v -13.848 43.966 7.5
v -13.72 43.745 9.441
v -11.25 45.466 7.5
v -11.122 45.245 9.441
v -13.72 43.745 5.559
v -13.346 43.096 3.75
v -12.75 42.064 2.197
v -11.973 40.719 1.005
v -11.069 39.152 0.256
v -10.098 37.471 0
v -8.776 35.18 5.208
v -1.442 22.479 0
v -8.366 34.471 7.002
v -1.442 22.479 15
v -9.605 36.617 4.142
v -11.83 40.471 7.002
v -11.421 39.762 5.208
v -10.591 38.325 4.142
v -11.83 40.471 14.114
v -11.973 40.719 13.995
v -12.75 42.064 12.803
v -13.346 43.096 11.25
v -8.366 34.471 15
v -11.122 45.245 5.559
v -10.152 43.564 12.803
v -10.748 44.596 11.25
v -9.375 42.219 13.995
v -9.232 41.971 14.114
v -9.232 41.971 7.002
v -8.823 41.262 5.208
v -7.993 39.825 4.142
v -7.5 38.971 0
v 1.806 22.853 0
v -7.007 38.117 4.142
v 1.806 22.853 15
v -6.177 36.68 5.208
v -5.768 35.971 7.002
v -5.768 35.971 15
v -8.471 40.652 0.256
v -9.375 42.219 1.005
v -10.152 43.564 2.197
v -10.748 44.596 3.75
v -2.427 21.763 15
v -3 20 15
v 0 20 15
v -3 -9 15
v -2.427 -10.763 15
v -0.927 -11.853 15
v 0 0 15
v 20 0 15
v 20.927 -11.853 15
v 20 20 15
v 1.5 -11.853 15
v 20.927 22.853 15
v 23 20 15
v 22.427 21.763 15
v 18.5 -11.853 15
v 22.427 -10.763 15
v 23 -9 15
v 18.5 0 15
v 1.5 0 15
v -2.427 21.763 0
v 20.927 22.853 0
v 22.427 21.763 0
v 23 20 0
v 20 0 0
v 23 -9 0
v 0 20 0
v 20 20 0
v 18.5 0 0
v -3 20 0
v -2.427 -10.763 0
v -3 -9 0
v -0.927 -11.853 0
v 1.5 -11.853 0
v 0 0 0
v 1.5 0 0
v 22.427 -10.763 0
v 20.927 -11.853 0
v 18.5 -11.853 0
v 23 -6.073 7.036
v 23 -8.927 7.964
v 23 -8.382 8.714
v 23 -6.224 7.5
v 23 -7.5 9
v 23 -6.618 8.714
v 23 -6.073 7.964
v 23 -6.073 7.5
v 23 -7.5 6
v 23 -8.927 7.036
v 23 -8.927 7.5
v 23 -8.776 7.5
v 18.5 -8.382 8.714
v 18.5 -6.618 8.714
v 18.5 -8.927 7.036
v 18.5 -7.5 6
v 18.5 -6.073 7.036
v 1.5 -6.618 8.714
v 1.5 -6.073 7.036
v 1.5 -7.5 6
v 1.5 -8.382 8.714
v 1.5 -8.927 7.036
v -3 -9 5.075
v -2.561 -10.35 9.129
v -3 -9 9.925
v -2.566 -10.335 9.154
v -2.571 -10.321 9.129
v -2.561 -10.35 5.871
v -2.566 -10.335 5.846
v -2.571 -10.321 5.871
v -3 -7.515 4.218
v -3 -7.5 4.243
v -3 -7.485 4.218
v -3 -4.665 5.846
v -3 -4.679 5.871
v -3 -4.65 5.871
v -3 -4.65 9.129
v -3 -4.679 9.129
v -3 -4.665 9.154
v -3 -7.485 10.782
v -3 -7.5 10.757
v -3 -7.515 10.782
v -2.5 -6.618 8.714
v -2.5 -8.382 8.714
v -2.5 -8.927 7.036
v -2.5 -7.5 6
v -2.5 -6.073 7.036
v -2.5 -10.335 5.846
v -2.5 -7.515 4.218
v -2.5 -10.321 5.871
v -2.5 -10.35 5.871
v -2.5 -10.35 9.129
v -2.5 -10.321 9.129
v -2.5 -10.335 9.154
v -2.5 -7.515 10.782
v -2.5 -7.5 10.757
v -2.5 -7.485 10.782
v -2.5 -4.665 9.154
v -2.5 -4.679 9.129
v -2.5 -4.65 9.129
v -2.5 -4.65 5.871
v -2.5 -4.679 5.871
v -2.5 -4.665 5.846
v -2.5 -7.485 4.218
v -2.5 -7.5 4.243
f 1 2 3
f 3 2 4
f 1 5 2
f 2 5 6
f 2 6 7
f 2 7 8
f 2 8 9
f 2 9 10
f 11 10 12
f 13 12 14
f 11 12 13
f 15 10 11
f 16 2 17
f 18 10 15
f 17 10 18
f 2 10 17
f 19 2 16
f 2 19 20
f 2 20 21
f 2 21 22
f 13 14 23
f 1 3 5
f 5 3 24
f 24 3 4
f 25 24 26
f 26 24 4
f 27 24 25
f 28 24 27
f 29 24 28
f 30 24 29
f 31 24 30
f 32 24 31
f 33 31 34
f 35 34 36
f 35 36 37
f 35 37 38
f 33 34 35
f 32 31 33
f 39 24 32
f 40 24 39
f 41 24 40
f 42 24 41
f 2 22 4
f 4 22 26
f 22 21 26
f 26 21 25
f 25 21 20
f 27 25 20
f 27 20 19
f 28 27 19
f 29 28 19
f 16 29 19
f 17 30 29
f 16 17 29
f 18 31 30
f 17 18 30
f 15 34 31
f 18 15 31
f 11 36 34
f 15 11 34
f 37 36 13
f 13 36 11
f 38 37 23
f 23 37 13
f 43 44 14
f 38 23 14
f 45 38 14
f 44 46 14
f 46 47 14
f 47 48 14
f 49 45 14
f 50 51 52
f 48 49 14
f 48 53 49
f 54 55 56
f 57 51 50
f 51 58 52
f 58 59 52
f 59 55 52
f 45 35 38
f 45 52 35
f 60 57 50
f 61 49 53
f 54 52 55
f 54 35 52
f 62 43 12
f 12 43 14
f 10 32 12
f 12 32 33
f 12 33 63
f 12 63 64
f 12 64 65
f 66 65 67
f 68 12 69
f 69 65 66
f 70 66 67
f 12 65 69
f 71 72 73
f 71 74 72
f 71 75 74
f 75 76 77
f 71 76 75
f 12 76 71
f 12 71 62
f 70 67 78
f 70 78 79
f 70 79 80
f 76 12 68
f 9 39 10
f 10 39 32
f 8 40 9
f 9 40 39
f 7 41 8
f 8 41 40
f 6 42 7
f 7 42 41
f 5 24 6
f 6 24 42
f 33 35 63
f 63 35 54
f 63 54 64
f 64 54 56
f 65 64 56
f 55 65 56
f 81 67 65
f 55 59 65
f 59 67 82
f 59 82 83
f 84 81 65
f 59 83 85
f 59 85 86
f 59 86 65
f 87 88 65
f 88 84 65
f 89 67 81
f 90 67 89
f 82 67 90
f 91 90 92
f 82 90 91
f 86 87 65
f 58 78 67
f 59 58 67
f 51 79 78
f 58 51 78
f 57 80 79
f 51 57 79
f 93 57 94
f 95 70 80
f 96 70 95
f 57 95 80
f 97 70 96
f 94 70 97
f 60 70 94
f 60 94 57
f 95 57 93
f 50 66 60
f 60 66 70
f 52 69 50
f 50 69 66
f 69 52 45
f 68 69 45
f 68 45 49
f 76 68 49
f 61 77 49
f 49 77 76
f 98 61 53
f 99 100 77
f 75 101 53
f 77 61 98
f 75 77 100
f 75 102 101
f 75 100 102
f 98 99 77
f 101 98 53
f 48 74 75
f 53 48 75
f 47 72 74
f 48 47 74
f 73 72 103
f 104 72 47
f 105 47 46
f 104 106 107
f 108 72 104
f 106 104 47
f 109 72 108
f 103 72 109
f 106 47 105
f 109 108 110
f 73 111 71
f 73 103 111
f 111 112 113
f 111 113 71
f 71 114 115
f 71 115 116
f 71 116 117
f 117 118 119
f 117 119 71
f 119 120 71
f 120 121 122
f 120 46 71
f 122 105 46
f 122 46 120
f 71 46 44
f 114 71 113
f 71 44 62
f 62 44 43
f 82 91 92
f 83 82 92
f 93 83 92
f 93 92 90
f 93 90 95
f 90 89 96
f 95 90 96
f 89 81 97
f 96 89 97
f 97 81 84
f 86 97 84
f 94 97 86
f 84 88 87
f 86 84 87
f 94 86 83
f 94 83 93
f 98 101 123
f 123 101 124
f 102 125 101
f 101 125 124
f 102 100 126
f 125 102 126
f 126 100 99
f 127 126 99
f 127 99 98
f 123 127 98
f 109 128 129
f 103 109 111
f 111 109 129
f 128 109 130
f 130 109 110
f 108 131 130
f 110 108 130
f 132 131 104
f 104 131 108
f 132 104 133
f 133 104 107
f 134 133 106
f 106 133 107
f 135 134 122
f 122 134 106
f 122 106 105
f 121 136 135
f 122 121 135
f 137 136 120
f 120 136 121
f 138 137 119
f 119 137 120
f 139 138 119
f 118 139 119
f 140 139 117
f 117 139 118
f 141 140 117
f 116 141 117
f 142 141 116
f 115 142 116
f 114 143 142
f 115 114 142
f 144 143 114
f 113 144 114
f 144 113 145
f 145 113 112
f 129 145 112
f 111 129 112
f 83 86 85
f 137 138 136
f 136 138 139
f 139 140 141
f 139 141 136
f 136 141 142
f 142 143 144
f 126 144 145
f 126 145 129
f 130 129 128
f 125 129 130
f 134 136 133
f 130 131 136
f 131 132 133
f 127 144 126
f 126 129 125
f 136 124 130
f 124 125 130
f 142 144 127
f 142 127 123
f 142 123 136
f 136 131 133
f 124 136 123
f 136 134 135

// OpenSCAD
width = 15;
outer_hole_dia = 7;
expanded_part_width = 15;

// size is the XY plane size, height in Z
module hexagon(size, height) {
  boxWidth = size/1.75;
  for (r = [-60, 0, 60]) rotate([0,0,r]) cube([boxWidth, size, height], true);
}

module holder() {


difference() {

union() {

translate([0, -9, 0])
minkowski()
{
   cube([20,29,width-1]);
   cylinder(r=3,h=1);
}

translate([15, 0, 0])
rotate([0, -90, 30])
difference() {
  hull()
  {
    translate([expanded_part_width/2, 12.5, 0])
    cylinder(r=expanded_part_width/2,h=3);
    translate([expanded_part_width/2, 45, 0])
    cylinder(r=expanded_part_width/2,h=3);
  }

  hull()
  {
  translate([expanded_part_width/2, 45, -1])
  cylinder(r=outer_hole_dia/2,h=7);
  translate([20, 45, -1])
  cylinder(r=outer_hole_dia/2,h=7);
  }
}
}

// hole for aluminium extrusion
   translate([0, 0, -1])
   cube([20,20,22]);

// for screw part
   translate([1.5, -16, -1])
   cube([17,20,22]);


// screw holes

translate([-4,-7.5, width/2])
rotate(a=90, v=[0,1,0])
hexagon(5.7, 3);

translate([23,-7.5, width/2])
rotate(a=90, v=[0,1,0])
cylinder(r2=3, r1=1.5, h=3);

translate([-10,-7.5, width/2])
rotate(a=90, v=[0,1,0])
cylinder(r=1.5, h=40);

}

}

holder();
